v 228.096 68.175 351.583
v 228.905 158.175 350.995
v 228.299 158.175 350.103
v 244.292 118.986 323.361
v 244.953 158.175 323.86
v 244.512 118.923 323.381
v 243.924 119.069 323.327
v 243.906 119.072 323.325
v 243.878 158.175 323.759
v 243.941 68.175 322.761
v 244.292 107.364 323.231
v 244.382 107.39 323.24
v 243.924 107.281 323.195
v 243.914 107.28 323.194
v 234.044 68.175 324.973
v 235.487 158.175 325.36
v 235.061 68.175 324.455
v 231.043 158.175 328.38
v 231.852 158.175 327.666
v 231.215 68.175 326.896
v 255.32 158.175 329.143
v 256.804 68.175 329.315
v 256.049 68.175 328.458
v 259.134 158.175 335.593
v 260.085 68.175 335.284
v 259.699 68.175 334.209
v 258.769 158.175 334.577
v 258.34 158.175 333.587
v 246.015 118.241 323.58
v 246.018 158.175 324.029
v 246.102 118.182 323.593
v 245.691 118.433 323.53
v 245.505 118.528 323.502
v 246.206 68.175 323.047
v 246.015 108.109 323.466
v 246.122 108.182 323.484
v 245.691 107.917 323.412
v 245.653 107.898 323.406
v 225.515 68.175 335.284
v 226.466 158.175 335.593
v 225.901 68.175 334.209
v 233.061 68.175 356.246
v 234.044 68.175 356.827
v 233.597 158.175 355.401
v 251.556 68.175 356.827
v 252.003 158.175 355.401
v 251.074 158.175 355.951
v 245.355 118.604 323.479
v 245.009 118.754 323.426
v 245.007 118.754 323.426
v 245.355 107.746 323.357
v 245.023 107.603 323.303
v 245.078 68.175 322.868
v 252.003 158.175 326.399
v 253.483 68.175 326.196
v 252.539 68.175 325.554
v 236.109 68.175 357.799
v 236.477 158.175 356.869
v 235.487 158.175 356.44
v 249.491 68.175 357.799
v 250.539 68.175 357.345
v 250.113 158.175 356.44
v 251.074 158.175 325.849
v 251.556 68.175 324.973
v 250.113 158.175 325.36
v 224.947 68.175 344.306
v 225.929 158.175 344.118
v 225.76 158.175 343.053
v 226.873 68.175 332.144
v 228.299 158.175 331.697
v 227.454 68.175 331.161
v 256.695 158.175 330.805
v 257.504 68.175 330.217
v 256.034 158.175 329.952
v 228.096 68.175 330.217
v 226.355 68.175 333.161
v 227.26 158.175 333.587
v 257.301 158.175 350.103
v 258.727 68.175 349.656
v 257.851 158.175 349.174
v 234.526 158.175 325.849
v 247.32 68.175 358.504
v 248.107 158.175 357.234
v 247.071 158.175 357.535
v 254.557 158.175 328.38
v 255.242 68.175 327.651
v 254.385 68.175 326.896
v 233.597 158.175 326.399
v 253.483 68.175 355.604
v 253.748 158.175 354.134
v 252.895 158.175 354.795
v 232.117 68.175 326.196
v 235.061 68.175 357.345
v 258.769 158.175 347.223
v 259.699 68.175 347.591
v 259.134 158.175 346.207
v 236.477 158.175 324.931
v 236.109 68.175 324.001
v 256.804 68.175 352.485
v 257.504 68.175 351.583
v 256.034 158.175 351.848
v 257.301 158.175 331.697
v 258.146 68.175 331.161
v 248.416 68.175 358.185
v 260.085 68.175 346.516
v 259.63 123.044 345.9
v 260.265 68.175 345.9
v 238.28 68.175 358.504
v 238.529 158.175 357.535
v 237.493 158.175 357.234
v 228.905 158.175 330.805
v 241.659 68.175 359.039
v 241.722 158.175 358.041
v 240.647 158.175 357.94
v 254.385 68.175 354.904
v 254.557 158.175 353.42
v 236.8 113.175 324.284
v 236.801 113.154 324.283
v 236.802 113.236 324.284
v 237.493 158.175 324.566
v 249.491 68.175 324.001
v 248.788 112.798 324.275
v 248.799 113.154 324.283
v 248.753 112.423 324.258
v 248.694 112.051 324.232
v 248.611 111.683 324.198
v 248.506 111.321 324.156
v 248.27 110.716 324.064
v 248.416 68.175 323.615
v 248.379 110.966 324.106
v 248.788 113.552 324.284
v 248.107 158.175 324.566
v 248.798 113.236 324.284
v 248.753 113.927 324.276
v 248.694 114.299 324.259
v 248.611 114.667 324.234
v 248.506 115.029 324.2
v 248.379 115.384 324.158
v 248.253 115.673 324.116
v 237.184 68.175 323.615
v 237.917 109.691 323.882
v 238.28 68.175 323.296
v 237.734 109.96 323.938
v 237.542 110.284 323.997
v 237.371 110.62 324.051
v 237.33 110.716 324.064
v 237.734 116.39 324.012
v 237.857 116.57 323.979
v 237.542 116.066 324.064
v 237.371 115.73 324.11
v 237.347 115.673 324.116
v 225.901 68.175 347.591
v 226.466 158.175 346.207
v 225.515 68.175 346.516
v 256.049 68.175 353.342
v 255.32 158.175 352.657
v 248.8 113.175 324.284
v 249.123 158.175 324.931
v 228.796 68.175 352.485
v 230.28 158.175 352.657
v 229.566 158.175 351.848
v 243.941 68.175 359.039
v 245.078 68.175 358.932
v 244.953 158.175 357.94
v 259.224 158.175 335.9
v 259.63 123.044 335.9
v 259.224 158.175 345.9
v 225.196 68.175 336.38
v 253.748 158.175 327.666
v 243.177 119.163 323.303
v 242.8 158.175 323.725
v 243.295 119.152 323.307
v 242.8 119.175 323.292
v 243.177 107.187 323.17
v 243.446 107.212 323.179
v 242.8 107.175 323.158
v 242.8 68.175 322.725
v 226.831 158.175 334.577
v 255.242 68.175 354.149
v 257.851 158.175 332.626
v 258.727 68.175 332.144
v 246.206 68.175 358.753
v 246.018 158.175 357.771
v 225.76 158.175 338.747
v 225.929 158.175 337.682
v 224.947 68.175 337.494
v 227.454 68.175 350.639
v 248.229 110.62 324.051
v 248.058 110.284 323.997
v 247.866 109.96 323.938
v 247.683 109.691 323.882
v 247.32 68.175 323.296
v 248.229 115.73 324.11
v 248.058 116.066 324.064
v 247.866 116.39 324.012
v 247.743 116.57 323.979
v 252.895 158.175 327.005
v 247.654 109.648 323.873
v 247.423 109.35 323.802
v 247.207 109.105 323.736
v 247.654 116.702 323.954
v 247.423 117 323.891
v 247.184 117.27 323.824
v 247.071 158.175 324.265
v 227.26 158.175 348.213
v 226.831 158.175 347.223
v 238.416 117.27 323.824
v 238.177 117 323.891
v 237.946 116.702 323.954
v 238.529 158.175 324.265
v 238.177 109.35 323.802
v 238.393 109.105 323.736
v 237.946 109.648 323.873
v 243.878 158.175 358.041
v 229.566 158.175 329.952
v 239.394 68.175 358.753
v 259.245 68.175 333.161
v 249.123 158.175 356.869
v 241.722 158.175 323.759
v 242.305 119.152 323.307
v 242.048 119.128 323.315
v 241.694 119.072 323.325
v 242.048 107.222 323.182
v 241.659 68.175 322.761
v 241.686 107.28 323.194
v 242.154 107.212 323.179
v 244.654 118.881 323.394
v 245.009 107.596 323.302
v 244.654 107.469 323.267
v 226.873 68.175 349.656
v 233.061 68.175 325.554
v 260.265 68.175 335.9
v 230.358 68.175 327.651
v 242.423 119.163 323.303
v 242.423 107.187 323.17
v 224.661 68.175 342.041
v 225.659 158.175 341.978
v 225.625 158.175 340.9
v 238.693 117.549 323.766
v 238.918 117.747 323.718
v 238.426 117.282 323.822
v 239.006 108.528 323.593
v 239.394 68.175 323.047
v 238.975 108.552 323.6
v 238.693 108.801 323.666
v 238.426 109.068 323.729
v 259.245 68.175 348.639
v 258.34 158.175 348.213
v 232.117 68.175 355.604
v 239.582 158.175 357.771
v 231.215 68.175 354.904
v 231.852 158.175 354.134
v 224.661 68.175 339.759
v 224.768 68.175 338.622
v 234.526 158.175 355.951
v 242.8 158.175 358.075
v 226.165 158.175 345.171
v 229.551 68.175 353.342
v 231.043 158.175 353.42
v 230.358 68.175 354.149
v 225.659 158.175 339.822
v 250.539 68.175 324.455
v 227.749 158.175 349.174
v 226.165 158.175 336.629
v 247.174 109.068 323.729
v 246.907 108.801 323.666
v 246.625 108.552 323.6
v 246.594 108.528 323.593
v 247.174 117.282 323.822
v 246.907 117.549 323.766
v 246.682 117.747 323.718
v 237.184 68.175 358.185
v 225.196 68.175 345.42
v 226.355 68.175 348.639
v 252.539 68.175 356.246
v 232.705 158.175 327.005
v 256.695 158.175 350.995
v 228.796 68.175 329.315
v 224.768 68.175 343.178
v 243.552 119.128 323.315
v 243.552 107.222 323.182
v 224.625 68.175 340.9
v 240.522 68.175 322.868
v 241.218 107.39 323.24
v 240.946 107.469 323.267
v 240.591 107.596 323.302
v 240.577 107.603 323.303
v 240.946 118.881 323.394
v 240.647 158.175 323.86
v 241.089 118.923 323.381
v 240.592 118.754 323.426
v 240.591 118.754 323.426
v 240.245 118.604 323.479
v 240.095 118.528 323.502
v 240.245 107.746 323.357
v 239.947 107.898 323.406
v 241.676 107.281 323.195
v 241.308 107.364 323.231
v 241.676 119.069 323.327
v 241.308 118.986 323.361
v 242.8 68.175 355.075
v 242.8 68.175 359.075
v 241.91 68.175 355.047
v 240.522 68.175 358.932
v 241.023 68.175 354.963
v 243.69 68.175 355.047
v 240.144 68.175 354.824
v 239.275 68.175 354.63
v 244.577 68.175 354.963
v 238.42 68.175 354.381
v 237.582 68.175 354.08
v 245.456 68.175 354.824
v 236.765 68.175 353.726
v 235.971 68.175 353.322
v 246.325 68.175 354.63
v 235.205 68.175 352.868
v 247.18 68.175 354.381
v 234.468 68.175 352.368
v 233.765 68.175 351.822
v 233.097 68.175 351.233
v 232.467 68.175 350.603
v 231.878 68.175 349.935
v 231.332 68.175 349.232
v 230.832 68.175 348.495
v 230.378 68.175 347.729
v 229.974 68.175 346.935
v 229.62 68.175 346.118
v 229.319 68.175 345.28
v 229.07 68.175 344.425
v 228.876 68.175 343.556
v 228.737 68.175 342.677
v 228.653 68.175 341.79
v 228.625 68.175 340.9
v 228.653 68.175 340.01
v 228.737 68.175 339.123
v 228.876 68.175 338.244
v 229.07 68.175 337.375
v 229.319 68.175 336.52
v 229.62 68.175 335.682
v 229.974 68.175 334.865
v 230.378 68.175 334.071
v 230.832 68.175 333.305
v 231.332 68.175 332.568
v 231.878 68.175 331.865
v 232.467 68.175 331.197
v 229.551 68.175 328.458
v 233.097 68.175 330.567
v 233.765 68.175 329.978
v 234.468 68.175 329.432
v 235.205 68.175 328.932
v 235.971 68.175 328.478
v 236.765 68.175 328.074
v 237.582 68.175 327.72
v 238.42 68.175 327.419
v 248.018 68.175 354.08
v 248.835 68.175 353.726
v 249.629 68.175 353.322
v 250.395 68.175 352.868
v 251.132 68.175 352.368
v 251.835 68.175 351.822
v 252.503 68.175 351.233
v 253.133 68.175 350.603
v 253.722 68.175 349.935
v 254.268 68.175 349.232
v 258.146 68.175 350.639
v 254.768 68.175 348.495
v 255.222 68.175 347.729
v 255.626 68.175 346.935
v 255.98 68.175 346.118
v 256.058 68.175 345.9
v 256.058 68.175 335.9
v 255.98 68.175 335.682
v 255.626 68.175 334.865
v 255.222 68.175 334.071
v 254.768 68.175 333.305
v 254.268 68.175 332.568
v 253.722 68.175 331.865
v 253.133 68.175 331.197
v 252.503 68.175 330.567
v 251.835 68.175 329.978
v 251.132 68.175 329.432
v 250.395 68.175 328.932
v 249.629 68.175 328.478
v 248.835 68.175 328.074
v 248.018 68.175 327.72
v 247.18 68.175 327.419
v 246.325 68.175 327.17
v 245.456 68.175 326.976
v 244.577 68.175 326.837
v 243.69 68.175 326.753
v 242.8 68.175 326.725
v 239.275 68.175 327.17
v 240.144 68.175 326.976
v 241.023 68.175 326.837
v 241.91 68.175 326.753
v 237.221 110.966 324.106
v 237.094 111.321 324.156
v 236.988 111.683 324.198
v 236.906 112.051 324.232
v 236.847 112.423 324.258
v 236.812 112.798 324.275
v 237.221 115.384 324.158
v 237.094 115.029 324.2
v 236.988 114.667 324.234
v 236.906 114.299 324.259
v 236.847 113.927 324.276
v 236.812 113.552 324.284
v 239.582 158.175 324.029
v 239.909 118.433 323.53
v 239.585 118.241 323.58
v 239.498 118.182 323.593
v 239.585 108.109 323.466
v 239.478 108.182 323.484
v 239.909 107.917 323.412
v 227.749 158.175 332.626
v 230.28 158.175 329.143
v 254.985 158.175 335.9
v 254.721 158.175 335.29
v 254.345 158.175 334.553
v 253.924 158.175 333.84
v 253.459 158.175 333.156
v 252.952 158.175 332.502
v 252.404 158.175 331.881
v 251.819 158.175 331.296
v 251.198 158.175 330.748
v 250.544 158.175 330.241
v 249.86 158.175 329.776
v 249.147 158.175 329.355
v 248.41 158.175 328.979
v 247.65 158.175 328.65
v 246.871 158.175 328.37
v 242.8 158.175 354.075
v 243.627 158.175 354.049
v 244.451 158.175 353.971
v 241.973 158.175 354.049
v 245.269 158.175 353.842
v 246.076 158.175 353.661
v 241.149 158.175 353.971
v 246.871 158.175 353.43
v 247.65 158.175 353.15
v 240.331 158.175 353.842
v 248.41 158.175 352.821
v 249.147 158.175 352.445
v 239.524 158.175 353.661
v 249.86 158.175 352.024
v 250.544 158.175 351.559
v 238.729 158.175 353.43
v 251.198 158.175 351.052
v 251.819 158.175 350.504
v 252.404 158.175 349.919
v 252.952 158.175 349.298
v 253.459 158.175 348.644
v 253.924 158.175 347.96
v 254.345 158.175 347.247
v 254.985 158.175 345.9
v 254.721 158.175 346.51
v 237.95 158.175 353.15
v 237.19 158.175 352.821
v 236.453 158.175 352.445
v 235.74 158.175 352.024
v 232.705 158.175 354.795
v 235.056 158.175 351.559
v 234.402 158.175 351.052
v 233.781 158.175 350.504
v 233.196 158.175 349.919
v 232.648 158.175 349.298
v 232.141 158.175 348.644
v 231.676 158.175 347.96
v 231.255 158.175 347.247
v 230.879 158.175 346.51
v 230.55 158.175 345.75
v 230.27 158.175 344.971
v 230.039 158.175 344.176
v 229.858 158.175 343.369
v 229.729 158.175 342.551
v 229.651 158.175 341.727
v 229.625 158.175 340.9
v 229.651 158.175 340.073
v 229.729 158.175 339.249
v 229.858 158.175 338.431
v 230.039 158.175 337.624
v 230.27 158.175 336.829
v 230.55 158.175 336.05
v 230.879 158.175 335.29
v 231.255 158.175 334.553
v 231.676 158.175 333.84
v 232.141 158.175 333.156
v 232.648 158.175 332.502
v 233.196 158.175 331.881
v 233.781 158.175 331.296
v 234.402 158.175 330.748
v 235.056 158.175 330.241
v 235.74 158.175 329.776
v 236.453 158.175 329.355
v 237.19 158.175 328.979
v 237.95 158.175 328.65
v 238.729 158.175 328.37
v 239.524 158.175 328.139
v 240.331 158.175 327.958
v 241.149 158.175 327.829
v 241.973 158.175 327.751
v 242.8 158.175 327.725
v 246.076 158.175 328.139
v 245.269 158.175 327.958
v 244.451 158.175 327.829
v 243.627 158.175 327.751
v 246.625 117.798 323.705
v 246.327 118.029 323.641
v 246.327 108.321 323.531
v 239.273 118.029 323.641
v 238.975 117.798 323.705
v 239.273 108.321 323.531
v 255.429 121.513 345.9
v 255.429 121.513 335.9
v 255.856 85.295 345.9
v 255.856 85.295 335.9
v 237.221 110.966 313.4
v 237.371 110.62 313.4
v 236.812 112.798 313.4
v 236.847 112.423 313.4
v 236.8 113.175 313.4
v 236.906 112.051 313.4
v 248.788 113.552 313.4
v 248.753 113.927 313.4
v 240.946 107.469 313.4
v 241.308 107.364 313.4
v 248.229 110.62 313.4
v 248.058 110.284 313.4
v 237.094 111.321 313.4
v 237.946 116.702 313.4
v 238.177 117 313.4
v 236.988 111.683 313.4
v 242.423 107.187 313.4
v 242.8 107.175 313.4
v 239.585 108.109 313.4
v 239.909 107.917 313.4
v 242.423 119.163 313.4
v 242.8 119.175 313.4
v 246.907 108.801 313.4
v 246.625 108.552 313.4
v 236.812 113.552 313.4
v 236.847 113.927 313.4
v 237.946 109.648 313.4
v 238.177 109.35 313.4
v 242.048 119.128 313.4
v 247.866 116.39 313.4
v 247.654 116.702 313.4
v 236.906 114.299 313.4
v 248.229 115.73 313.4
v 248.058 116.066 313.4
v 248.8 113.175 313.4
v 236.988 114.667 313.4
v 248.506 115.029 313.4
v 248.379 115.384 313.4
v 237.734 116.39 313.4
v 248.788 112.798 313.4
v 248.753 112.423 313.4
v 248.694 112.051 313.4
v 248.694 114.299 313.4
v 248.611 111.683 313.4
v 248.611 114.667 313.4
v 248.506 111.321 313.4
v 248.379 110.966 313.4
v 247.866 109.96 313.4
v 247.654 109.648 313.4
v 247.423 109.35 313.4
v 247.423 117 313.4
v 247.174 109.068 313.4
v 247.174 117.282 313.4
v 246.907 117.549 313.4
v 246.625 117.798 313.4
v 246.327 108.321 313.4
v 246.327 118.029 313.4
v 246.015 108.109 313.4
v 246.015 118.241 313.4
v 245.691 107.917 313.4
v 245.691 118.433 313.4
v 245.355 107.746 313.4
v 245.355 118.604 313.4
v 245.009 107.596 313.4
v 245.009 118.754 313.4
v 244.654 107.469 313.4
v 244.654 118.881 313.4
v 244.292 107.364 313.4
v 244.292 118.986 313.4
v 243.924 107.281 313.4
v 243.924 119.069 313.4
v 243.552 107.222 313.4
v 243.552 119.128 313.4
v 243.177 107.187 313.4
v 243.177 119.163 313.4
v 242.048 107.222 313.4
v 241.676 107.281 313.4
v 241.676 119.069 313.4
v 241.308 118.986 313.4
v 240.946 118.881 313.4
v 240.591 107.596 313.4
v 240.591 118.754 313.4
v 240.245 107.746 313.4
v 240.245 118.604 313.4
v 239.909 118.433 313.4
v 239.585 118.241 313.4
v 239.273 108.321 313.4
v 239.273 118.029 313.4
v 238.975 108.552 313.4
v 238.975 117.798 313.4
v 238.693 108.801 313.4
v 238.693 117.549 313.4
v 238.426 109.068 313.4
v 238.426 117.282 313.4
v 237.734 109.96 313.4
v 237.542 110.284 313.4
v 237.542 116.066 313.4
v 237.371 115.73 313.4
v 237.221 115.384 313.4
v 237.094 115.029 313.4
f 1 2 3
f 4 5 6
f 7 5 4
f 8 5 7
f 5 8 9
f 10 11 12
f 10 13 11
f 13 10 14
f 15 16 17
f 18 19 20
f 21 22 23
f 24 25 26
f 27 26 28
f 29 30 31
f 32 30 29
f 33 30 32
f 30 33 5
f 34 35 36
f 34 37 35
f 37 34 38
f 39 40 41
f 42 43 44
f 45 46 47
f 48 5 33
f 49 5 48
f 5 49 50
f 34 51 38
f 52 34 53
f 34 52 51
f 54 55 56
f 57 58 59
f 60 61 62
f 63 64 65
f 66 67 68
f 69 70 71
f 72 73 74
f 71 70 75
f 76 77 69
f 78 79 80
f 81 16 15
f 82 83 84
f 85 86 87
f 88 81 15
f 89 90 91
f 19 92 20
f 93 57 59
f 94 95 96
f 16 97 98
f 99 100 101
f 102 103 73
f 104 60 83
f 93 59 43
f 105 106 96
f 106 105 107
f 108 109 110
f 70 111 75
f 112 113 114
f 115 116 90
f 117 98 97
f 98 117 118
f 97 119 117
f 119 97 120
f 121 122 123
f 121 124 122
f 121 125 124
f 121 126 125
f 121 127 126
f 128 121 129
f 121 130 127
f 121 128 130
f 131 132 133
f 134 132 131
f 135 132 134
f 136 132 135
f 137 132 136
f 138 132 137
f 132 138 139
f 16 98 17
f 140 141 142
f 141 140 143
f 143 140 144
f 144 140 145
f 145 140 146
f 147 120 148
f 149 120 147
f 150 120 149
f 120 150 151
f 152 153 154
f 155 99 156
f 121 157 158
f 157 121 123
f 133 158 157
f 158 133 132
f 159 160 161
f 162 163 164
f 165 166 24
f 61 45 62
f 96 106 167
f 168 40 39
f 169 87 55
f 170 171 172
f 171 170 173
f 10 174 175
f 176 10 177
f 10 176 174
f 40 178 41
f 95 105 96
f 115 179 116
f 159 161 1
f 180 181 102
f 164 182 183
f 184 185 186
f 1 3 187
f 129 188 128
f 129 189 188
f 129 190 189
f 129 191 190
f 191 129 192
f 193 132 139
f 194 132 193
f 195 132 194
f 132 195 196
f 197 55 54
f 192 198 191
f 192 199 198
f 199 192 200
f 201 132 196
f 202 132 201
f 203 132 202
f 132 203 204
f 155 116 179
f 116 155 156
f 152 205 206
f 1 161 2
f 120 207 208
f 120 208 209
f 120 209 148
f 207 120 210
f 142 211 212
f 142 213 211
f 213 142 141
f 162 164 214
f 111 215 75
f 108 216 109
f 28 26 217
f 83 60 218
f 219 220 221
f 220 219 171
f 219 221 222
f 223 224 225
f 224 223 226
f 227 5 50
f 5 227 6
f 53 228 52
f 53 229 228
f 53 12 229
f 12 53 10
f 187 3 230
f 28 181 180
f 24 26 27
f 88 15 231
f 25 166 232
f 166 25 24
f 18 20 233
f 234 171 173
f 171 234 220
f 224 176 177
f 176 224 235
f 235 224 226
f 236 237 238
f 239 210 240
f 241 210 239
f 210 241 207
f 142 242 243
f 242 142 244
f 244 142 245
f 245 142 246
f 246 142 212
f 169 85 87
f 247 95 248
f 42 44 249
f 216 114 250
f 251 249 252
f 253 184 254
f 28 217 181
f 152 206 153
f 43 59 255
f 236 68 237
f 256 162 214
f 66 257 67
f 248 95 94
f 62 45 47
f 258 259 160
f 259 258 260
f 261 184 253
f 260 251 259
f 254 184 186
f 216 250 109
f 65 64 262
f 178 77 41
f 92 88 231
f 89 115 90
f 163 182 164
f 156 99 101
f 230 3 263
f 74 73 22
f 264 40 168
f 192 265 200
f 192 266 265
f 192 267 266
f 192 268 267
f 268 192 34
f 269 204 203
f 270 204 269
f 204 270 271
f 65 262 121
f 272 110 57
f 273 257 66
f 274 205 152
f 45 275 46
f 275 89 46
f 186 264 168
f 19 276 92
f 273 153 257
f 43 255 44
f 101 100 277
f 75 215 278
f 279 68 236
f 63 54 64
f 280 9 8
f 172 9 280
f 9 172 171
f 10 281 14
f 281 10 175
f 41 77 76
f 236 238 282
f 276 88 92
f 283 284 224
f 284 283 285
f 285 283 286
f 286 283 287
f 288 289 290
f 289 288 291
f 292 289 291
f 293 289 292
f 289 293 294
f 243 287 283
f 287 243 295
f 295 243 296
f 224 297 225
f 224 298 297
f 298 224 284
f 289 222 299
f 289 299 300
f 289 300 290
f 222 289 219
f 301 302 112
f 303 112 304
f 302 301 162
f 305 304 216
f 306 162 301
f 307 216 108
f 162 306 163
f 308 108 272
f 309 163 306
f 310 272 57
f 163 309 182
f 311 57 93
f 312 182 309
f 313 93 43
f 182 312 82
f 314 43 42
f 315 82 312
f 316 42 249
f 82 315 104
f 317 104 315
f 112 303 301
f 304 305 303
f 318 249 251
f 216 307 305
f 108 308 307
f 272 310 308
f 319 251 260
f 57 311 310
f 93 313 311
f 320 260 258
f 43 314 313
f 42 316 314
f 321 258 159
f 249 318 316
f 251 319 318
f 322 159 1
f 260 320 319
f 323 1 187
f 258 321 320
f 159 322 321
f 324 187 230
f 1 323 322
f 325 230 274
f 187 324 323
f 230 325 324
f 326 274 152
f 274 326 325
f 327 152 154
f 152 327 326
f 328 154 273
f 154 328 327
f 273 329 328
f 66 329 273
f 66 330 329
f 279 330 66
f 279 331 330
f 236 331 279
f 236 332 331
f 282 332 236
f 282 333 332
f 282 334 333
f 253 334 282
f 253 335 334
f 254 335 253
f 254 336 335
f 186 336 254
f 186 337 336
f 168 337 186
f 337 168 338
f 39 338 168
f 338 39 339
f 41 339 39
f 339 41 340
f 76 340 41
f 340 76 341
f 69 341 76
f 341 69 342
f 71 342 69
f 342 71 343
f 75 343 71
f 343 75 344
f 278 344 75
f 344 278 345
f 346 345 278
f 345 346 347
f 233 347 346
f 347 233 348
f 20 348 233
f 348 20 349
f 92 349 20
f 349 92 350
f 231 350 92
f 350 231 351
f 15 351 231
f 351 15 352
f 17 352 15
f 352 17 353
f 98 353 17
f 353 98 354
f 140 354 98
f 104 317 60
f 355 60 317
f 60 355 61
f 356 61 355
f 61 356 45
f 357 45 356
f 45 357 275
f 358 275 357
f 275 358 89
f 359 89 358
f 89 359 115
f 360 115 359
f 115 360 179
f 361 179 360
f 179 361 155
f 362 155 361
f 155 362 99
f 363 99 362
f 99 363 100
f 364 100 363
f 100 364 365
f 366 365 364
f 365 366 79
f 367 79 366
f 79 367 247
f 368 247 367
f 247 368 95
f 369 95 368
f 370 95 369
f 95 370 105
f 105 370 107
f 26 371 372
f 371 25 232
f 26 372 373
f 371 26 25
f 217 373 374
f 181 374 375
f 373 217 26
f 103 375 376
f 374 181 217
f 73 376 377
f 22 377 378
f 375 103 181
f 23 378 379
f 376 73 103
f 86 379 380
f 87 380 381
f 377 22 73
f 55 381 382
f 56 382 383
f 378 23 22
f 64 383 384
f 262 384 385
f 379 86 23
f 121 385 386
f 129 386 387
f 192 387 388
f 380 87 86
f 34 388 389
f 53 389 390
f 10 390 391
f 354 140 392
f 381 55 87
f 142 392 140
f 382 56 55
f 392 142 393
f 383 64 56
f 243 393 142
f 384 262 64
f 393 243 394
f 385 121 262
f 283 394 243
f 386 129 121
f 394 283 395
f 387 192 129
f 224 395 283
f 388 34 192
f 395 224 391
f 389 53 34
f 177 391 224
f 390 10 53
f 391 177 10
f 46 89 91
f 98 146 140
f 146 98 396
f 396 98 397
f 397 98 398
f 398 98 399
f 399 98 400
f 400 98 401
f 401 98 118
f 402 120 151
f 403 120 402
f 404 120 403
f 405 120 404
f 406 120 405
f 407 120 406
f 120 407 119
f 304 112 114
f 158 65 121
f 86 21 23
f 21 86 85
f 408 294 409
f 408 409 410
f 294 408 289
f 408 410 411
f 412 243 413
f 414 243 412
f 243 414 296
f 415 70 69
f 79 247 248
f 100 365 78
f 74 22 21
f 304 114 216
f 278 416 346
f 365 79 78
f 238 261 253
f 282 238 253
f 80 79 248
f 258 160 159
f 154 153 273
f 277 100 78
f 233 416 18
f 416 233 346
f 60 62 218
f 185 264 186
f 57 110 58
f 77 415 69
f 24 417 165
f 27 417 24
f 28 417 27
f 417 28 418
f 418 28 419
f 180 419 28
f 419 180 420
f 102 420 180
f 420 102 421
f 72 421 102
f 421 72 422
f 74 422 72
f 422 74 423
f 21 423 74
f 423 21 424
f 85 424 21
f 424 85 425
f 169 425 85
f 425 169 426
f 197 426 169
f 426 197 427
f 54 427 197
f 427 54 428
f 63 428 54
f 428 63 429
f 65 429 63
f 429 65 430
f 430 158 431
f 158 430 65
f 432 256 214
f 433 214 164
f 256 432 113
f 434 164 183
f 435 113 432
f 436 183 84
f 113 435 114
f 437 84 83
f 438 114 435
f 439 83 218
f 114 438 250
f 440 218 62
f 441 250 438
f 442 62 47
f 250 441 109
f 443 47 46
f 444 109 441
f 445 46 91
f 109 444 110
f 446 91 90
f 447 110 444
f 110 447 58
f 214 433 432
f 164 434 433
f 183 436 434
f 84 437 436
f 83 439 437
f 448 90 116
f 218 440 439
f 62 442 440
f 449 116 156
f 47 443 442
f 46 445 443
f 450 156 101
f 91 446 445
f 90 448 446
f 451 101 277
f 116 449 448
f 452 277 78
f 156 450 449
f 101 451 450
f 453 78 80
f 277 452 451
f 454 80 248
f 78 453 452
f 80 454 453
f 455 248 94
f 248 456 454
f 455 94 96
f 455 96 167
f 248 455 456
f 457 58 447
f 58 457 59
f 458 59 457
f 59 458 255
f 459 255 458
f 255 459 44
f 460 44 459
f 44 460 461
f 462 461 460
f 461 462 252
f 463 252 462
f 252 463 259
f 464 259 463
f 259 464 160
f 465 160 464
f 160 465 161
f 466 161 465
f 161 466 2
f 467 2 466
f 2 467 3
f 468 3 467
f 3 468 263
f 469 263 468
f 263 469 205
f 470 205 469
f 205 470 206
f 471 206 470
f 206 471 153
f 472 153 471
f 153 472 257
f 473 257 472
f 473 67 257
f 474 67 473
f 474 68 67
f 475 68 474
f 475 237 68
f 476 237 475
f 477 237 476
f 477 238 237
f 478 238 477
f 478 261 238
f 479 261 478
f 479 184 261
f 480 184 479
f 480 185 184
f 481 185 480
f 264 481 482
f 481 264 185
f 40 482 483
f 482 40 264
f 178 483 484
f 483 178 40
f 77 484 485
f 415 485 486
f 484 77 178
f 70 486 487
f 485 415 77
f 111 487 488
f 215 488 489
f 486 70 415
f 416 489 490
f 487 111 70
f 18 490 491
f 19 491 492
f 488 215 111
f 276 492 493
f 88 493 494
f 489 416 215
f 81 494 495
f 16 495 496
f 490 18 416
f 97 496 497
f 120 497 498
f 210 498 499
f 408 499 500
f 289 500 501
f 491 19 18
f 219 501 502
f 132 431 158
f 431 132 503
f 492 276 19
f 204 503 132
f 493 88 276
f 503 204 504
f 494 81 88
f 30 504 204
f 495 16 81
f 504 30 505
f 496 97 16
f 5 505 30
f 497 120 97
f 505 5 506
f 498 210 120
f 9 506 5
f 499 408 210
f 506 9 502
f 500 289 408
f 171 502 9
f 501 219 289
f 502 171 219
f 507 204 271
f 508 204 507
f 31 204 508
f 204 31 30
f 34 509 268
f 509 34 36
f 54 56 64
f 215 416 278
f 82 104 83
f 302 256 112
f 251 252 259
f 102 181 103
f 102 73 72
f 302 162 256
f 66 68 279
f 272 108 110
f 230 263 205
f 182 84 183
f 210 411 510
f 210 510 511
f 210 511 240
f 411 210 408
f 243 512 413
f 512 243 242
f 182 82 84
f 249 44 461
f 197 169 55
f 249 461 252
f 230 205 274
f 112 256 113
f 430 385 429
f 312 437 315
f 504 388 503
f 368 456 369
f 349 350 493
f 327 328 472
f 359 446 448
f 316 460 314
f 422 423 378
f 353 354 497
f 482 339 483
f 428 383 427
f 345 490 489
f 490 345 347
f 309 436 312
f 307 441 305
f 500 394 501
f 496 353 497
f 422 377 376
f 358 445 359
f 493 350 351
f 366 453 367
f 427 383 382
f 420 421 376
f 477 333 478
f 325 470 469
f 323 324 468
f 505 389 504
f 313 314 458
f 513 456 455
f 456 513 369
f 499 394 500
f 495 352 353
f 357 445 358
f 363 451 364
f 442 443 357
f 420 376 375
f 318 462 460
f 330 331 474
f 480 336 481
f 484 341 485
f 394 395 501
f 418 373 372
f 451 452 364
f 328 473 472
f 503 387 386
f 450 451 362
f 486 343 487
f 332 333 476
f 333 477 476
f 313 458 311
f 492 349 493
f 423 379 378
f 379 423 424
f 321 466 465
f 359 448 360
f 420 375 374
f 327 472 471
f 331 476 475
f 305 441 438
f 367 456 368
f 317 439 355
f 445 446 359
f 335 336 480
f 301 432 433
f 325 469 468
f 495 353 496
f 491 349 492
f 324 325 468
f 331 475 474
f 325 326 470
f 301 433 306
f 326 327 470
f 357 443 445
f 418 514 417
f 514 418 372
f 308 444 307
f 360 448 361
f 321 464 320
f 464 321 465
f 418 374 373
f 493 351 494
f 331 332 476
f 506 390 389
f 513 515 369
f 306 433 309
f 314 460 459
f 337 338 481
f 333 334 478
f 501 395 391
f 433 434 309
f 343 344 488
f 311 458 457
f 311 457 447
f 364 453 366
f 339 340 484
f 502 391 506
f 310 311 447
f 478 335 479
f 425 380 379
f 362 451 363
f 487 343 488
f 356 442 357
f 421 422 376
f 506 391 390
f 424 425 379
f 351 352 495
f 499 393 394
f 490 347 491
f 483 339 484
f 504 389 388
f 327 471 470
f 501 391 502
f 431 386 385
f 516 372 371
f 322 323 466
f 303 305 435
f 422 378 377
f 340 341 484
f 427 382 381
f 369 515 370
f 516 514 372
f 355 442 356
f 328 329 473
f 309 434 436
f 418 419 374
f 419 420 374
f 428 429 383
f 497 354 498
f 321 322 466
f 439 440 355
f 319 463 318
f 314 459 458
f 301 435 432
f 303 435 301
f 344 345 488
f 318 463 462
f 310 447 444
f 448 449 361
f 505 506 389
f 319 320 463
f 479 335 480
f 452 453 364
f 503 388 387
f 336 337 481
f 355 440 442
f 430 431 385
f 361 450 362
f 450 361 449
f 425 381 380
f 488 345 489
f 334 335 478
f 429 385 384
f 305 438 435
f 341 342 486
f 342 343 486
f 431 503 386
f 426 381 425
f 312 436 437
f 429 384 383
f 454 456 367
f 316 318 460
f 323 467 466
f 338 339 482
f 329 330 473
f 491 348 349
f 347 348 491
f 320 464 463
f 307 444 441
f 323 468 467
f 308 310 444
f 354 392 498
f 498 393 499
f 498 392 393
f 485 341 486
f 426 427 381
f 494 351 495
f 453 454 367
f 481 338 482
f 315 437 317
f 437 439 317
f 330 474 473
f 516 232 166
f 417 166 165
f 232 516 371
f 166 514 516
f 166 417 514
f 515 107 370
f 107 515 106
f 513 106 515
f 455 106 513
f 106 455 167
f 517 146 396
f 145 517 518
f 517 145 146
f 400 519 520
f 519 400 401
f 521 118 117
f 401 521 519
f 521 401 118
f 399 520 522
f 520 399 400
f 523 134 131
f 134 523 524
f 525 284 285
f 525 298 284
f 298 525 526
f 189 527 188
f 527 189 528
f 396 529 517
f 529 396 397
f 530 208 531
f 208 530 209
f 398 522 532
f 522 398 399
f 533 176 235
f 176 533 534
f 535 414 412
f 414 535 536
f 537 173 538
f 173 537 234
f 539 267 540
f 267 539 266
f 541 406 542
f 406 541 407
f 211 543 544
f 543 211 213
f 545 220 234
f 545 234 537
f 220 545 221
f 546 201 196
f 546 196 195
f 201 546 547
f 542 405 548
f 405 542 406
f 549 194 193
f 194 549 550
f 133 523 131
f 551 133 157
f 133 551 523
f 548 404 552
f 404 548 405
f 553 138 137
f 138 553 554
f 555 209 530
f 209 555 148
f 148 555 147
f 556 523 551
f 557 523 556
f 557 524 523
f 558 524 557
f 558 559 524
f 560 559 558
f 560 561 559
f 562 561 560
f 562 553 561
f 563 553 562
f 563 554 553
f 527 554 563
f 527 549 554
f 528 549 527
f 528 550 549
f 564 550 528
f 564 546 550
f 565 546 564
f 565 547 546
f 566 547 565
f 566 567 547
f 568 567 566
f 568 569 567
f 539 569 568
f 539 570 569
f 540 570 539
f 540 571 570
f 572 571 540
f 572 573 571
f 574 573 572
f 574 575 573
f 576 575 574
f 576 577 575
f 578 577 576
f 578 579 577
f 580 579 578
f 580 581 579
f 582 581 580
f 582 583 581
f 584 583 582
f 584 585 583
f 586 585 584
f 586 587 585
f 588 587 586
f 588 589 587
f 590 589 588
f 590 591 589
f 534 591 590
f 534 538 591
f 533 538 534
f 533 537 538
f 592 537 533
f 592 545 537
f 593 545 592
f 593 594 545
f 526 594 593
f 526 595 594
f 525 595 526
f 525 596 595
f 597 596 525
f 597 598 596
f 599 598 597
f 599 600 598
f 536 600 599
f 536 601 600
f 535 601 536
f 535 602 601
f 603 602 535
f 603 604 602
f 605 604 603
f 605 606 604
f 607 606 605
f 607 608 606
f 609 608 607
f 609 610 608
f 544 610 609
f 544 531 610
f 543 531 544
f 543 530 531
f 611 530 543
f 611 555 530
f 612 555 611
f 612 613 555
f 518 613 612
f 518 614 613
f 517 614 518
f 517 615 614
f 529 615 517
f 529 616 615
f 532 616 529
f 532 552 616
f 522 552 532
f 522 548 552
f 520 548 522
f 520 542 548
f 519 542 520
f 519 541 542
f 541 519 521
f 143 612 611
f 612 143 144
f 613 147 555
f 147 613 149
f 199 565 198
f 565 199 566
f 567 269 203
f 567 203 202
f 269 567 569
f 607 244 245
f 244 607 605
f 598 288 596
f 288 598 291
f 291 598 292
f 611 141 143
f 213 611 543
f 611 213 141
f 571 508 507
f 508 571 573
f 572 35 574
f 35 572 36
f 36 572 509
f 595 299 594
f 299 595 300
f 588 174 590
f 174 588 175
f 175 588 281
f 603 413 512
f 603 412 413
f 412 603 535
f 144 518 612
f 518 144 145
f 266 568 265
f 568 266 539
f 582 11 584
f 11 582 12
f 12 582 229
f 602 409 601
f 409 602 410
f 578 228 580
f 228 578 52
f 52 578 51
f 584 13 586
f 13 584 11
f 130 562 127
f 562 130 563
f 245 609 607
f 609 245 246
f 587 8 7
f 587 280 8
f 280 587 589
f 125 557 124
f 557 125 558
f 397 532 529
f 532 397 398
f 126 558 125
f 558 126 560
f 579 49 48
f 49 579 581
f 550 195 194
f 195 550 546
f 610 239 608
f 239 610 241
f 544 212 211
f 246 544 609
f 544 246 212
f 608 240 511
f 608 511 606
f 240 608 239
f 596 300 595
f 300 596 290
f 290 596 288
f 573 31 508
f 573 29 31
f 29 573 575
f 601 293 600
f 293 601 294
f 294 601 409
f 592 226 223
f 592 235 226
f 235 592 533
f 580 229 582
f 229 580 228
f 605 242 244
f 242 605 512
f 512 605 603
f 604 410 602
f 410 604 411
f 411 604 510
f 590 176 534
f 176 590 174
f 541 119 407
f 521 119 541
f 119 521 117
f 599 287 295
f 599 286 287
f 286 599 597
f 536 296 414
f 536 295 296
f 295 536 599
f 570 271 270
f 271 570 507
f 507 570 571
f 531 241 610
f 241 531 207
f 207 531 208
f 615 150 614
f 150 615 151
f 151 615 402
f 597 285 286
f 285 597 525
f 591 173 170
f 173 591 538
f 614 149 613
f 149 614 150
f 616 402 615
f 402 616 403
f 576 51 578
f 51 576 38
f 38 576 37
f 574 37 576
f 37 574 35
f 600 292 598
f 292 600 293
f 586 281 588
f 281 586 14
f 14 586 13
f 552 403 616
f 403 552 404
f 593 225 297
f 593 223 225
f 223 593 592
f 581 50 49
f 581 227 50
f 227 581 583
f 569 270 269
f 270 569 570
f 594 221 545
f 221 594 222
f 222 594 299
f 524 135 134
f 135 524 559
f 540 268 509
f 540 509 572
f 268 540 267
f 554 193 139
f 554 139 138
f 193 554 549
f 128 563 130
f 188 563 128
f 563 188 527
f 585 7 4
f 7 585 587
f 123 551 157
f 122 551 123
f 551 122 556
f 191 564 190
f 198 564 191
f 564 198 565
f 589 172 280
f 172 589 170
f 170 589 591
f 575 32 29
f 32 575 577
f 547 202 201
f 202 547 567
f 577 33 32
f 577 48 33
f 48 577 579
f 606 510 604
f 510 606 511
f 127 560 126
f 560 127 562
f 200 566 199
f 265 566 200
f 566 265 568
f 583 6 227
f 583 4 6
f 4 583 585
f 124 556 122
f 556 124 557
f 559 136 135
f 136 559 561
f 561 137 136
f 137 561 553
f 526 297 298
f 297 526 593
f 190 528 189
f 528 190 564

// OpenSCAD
// file: funcBastaoRetratil.scad
// ----- ----- ----- Declaração de Variáveis ----- ----- ----- //

res=10;
folga1=0.125;
folga2=0.175;
eFMO=25.2; //entreFurosMesaOptica
rFuro=6/2;

folginhacobre=1;
nxfuroscobre=4;
nyfuroscobre=3;

cux=(nxfuroscobre-1)*eFMO+2*rFuro+2*folga1;
cuy=(nyfuroscobre-1)*eFMO+2*rFuro+2*folga1;
cuz=28.4;
zcu=10;

cux_compare=1;
cuy_compare=1;
cuz_compare=1;

Ly=70;
//Lx=20;
Lx=cux+2*folginhacobre;
pex=20;
//pex=cux+2*folginhacobre;

rCil=20/2;
altCil=170;
tyCil=rCil+5; //'t' vem de translação, e 'y' vem de estar no eixo y
txCil=30; //'t' vem de translação, e 'y' vem de estar no eixo y

rCone=25;
altCone=rCone+20;

abertura=60; //é um ângulo dado em graus
maoAmais=2.5;
altmao=10;
altmao2=10;
altmao3=35;

cubebracox=55;
cubebracoy=rCil;
cubebracoz=altmao;
aux_scale=0.6;

rKint=rCil-1;
rKext=rCil;
altK=altmao2/2;

rpivot=2.5;
altpivot=altmao2;

rCint1=1;
rCint2=1;
rCext1=1;
rCext2=1;
altC=altmao2/2; // 'C' é de Canhão
entreDistCanhao=10;

altpeq=3;

// ----- ----- ----- Declaração de Variáveis ----- ----- ----- //

//use <threads-library-by-cuiso-daniel-v7.scad>
use <threads-library-by-cuiso-v1.scad>

// ----- ----- ----- MAIN ----- ----- ----- //
module funcBastaoRetratil(peca=2,alt,r=20/2,esp=3,res=100,folga=0.125){
    if(peca==3){
        // Peça Maior
        difference(){
            cylinder(alt,r-folga,r-folga,$fn=res);
            #cylinder(alt,r-esp+folga,r-esp+folga,$fn=res);
            #translate([0,0,alt-5])
            #rotate([90,0,0])
            #cylinder(2*alt,5/2,5/2,$fn=res);
        }
        
        //Peça menor
        translate([0,0,alt-10])
        difference(){
            cylinder(alt,r-esp,r-esp,$fn=res);
            #cylinder(alt,r-2*esp,r-2*esp,$fn=res);
        }
        translate([0,0,2*alt-10])cylinder(altpeq,r-esp,r-esp,$fn=res);
        translate([0,0,2*alt-10+altpeq])
        difference(){
            cylinder(d=10, h=7, $fn = res); 
            #thread_for_nut(diameter=6, length=7, usrclearance=0.1); 
        }
        
        //Parafuso
        translate([r*1.25+9+4.5,0,0]){
            thread_for_screw(diameter=6, length=10); 
            cylinder(d=9+4.5, h=3, $fn=6);
        }
    }else if(peca==0){
        // Peça Maior
        difference(){
            cylinder(alt,r-folga,r-folga,$fn=res);
            #cylinder(alt,r-esp+folga,r-esp+folga,$fn=res);
            #translate([0,0,alt-5])
            #rotate([90,0,0])
            #cylinder(2*alt,5/2,5/2,$fn=res);
        }
    }else if(peca==1){
        //Peça menor
        translate([0,0,alt-10])
        difference(){
            cylinder(alt,r-esp,r-esp,$fn=res);
            #cylinder(alt,r-2*esp,r-2*esp,$fn=res);
        }
        translate([0,0,2*alt-10])cylinder(altpeq,r-esp,r-esp,$fn=res);
        translate([0,0,2*alt-10+altpeq])
        difference(){
            cylinder(d=10, h=7, $fn = res); 
            #thread_for_nut(diameter=6, length=7, usrclearance=0.1); 
        }
    }else if(peca==2){
        //Parafuso
        translate([r*1.25+9+4.5,0,0]){
            thread_for_screw(diameter=6, length=10); 
            cylinder(d=9+4.5, h=3, $fn=6);
        }
    }
    echo("Altura máxima do chão até a parte de baixo do braço (Nota: Não se considera a altura que entra por baixo na peça de cima):");
    echo(2*alt-10+altpeq+7+5+3);
}

funcBastaoRetratil(peca=2,alt=200);
// main file
// ----- ----- ----- Declaração de Variáveis ----- ----- ----- //

res=100;
folga1=0.125;
folga2=0.175;
eFMO=25.2; //entreFurosMesaOptica
rFuro=6/2;

folginhacobre=1;
nxfuroscobre=4;
nyfuroscobre=3;

cux=(nxfuroscobre-1)*eFMO+2*rFuro+2*folga1;
cuy=(nyfuroscobre-1)*eFMO+2*rFuro+2*folga1;
cuz=28.4;
zcu=10;

cux_compare=1;
cuy_compare=1;
cuz_compare=1;

Ly=70;
//Lx=20;
Lx=cux+2*folginhacobre;
pex=20;
//pex=cux+2*folginhacobre;

rCil=20/2;
altCil=270;
tyCil=rCil+5; //'t' vem de translação, e 'y' vem de estar no eixo y
txCil=30; //'t' vem de translação, e 'y' vem de estar no eixo y

rCone=25;
altCone=rCone+20;

abertura=60; //é um ângulo dado em graus
maoAmais=3;
altmao=10;
altmao2=10;
altmao3=27.5;

cubebracox=200/2;
cubebracoy=rCil;
cubebracoz=altmao;
aux_scale=0.6;

esp=3;
rKint=rCil-esp;
rKext=rCil;
altK=altmao2/2;

rpivot=6;
altpivot=altmao2;

rCint1=1;
rCint2=1;
rCext1=1;
rCext2=1;
altC=altmao2/2; // 'C' é de Canhão
entreDistCanhao=10;

// ----- ----- ----- Declaração de Funções ----- ----- ----- //
use <funcoes_GFCx.scad>
use <funcBastaoRetratil.scad>

// ----- ----- ----- MAIN ----- ----- ----- //

translate([0,1.5*(cuy+2*folginhacobre),0]){
    // Canhão
    translate([2*cubebracox+5,0,0])
    translate([eFMO*(1.5),eFMO,cuz+zcu+altCil+5])
    rotate([0,0,180])
    difference(){
        translate([0,0,0]){
            cylinder(altmao3,rpivot,rpivot,$fn=res);
            //-----Suporte Cilíndrico-----//
            translate([0,90/2,altmao3])rotate([90,0,0])rotate([0,0,180])
            difference(){
                translate([0,0,0]){
                    cylinder(90,28.35/2+4,26.35/2+4,$fn=res);
                }
                #cylinder(90,28.35/2,26.35/2,$fn=res);
                #translate([0,-5,0])cube([40,10,90]);
            }
        }
        #translate([0,90/2,altmao3])rotate([90,0,0])rotate([0,0,180]){
            #cylinder(90,28.35/2,26.35/2,$fn=res);
            #translate([0,-5,0])cube([40,10,90]);
        }
    }
}
